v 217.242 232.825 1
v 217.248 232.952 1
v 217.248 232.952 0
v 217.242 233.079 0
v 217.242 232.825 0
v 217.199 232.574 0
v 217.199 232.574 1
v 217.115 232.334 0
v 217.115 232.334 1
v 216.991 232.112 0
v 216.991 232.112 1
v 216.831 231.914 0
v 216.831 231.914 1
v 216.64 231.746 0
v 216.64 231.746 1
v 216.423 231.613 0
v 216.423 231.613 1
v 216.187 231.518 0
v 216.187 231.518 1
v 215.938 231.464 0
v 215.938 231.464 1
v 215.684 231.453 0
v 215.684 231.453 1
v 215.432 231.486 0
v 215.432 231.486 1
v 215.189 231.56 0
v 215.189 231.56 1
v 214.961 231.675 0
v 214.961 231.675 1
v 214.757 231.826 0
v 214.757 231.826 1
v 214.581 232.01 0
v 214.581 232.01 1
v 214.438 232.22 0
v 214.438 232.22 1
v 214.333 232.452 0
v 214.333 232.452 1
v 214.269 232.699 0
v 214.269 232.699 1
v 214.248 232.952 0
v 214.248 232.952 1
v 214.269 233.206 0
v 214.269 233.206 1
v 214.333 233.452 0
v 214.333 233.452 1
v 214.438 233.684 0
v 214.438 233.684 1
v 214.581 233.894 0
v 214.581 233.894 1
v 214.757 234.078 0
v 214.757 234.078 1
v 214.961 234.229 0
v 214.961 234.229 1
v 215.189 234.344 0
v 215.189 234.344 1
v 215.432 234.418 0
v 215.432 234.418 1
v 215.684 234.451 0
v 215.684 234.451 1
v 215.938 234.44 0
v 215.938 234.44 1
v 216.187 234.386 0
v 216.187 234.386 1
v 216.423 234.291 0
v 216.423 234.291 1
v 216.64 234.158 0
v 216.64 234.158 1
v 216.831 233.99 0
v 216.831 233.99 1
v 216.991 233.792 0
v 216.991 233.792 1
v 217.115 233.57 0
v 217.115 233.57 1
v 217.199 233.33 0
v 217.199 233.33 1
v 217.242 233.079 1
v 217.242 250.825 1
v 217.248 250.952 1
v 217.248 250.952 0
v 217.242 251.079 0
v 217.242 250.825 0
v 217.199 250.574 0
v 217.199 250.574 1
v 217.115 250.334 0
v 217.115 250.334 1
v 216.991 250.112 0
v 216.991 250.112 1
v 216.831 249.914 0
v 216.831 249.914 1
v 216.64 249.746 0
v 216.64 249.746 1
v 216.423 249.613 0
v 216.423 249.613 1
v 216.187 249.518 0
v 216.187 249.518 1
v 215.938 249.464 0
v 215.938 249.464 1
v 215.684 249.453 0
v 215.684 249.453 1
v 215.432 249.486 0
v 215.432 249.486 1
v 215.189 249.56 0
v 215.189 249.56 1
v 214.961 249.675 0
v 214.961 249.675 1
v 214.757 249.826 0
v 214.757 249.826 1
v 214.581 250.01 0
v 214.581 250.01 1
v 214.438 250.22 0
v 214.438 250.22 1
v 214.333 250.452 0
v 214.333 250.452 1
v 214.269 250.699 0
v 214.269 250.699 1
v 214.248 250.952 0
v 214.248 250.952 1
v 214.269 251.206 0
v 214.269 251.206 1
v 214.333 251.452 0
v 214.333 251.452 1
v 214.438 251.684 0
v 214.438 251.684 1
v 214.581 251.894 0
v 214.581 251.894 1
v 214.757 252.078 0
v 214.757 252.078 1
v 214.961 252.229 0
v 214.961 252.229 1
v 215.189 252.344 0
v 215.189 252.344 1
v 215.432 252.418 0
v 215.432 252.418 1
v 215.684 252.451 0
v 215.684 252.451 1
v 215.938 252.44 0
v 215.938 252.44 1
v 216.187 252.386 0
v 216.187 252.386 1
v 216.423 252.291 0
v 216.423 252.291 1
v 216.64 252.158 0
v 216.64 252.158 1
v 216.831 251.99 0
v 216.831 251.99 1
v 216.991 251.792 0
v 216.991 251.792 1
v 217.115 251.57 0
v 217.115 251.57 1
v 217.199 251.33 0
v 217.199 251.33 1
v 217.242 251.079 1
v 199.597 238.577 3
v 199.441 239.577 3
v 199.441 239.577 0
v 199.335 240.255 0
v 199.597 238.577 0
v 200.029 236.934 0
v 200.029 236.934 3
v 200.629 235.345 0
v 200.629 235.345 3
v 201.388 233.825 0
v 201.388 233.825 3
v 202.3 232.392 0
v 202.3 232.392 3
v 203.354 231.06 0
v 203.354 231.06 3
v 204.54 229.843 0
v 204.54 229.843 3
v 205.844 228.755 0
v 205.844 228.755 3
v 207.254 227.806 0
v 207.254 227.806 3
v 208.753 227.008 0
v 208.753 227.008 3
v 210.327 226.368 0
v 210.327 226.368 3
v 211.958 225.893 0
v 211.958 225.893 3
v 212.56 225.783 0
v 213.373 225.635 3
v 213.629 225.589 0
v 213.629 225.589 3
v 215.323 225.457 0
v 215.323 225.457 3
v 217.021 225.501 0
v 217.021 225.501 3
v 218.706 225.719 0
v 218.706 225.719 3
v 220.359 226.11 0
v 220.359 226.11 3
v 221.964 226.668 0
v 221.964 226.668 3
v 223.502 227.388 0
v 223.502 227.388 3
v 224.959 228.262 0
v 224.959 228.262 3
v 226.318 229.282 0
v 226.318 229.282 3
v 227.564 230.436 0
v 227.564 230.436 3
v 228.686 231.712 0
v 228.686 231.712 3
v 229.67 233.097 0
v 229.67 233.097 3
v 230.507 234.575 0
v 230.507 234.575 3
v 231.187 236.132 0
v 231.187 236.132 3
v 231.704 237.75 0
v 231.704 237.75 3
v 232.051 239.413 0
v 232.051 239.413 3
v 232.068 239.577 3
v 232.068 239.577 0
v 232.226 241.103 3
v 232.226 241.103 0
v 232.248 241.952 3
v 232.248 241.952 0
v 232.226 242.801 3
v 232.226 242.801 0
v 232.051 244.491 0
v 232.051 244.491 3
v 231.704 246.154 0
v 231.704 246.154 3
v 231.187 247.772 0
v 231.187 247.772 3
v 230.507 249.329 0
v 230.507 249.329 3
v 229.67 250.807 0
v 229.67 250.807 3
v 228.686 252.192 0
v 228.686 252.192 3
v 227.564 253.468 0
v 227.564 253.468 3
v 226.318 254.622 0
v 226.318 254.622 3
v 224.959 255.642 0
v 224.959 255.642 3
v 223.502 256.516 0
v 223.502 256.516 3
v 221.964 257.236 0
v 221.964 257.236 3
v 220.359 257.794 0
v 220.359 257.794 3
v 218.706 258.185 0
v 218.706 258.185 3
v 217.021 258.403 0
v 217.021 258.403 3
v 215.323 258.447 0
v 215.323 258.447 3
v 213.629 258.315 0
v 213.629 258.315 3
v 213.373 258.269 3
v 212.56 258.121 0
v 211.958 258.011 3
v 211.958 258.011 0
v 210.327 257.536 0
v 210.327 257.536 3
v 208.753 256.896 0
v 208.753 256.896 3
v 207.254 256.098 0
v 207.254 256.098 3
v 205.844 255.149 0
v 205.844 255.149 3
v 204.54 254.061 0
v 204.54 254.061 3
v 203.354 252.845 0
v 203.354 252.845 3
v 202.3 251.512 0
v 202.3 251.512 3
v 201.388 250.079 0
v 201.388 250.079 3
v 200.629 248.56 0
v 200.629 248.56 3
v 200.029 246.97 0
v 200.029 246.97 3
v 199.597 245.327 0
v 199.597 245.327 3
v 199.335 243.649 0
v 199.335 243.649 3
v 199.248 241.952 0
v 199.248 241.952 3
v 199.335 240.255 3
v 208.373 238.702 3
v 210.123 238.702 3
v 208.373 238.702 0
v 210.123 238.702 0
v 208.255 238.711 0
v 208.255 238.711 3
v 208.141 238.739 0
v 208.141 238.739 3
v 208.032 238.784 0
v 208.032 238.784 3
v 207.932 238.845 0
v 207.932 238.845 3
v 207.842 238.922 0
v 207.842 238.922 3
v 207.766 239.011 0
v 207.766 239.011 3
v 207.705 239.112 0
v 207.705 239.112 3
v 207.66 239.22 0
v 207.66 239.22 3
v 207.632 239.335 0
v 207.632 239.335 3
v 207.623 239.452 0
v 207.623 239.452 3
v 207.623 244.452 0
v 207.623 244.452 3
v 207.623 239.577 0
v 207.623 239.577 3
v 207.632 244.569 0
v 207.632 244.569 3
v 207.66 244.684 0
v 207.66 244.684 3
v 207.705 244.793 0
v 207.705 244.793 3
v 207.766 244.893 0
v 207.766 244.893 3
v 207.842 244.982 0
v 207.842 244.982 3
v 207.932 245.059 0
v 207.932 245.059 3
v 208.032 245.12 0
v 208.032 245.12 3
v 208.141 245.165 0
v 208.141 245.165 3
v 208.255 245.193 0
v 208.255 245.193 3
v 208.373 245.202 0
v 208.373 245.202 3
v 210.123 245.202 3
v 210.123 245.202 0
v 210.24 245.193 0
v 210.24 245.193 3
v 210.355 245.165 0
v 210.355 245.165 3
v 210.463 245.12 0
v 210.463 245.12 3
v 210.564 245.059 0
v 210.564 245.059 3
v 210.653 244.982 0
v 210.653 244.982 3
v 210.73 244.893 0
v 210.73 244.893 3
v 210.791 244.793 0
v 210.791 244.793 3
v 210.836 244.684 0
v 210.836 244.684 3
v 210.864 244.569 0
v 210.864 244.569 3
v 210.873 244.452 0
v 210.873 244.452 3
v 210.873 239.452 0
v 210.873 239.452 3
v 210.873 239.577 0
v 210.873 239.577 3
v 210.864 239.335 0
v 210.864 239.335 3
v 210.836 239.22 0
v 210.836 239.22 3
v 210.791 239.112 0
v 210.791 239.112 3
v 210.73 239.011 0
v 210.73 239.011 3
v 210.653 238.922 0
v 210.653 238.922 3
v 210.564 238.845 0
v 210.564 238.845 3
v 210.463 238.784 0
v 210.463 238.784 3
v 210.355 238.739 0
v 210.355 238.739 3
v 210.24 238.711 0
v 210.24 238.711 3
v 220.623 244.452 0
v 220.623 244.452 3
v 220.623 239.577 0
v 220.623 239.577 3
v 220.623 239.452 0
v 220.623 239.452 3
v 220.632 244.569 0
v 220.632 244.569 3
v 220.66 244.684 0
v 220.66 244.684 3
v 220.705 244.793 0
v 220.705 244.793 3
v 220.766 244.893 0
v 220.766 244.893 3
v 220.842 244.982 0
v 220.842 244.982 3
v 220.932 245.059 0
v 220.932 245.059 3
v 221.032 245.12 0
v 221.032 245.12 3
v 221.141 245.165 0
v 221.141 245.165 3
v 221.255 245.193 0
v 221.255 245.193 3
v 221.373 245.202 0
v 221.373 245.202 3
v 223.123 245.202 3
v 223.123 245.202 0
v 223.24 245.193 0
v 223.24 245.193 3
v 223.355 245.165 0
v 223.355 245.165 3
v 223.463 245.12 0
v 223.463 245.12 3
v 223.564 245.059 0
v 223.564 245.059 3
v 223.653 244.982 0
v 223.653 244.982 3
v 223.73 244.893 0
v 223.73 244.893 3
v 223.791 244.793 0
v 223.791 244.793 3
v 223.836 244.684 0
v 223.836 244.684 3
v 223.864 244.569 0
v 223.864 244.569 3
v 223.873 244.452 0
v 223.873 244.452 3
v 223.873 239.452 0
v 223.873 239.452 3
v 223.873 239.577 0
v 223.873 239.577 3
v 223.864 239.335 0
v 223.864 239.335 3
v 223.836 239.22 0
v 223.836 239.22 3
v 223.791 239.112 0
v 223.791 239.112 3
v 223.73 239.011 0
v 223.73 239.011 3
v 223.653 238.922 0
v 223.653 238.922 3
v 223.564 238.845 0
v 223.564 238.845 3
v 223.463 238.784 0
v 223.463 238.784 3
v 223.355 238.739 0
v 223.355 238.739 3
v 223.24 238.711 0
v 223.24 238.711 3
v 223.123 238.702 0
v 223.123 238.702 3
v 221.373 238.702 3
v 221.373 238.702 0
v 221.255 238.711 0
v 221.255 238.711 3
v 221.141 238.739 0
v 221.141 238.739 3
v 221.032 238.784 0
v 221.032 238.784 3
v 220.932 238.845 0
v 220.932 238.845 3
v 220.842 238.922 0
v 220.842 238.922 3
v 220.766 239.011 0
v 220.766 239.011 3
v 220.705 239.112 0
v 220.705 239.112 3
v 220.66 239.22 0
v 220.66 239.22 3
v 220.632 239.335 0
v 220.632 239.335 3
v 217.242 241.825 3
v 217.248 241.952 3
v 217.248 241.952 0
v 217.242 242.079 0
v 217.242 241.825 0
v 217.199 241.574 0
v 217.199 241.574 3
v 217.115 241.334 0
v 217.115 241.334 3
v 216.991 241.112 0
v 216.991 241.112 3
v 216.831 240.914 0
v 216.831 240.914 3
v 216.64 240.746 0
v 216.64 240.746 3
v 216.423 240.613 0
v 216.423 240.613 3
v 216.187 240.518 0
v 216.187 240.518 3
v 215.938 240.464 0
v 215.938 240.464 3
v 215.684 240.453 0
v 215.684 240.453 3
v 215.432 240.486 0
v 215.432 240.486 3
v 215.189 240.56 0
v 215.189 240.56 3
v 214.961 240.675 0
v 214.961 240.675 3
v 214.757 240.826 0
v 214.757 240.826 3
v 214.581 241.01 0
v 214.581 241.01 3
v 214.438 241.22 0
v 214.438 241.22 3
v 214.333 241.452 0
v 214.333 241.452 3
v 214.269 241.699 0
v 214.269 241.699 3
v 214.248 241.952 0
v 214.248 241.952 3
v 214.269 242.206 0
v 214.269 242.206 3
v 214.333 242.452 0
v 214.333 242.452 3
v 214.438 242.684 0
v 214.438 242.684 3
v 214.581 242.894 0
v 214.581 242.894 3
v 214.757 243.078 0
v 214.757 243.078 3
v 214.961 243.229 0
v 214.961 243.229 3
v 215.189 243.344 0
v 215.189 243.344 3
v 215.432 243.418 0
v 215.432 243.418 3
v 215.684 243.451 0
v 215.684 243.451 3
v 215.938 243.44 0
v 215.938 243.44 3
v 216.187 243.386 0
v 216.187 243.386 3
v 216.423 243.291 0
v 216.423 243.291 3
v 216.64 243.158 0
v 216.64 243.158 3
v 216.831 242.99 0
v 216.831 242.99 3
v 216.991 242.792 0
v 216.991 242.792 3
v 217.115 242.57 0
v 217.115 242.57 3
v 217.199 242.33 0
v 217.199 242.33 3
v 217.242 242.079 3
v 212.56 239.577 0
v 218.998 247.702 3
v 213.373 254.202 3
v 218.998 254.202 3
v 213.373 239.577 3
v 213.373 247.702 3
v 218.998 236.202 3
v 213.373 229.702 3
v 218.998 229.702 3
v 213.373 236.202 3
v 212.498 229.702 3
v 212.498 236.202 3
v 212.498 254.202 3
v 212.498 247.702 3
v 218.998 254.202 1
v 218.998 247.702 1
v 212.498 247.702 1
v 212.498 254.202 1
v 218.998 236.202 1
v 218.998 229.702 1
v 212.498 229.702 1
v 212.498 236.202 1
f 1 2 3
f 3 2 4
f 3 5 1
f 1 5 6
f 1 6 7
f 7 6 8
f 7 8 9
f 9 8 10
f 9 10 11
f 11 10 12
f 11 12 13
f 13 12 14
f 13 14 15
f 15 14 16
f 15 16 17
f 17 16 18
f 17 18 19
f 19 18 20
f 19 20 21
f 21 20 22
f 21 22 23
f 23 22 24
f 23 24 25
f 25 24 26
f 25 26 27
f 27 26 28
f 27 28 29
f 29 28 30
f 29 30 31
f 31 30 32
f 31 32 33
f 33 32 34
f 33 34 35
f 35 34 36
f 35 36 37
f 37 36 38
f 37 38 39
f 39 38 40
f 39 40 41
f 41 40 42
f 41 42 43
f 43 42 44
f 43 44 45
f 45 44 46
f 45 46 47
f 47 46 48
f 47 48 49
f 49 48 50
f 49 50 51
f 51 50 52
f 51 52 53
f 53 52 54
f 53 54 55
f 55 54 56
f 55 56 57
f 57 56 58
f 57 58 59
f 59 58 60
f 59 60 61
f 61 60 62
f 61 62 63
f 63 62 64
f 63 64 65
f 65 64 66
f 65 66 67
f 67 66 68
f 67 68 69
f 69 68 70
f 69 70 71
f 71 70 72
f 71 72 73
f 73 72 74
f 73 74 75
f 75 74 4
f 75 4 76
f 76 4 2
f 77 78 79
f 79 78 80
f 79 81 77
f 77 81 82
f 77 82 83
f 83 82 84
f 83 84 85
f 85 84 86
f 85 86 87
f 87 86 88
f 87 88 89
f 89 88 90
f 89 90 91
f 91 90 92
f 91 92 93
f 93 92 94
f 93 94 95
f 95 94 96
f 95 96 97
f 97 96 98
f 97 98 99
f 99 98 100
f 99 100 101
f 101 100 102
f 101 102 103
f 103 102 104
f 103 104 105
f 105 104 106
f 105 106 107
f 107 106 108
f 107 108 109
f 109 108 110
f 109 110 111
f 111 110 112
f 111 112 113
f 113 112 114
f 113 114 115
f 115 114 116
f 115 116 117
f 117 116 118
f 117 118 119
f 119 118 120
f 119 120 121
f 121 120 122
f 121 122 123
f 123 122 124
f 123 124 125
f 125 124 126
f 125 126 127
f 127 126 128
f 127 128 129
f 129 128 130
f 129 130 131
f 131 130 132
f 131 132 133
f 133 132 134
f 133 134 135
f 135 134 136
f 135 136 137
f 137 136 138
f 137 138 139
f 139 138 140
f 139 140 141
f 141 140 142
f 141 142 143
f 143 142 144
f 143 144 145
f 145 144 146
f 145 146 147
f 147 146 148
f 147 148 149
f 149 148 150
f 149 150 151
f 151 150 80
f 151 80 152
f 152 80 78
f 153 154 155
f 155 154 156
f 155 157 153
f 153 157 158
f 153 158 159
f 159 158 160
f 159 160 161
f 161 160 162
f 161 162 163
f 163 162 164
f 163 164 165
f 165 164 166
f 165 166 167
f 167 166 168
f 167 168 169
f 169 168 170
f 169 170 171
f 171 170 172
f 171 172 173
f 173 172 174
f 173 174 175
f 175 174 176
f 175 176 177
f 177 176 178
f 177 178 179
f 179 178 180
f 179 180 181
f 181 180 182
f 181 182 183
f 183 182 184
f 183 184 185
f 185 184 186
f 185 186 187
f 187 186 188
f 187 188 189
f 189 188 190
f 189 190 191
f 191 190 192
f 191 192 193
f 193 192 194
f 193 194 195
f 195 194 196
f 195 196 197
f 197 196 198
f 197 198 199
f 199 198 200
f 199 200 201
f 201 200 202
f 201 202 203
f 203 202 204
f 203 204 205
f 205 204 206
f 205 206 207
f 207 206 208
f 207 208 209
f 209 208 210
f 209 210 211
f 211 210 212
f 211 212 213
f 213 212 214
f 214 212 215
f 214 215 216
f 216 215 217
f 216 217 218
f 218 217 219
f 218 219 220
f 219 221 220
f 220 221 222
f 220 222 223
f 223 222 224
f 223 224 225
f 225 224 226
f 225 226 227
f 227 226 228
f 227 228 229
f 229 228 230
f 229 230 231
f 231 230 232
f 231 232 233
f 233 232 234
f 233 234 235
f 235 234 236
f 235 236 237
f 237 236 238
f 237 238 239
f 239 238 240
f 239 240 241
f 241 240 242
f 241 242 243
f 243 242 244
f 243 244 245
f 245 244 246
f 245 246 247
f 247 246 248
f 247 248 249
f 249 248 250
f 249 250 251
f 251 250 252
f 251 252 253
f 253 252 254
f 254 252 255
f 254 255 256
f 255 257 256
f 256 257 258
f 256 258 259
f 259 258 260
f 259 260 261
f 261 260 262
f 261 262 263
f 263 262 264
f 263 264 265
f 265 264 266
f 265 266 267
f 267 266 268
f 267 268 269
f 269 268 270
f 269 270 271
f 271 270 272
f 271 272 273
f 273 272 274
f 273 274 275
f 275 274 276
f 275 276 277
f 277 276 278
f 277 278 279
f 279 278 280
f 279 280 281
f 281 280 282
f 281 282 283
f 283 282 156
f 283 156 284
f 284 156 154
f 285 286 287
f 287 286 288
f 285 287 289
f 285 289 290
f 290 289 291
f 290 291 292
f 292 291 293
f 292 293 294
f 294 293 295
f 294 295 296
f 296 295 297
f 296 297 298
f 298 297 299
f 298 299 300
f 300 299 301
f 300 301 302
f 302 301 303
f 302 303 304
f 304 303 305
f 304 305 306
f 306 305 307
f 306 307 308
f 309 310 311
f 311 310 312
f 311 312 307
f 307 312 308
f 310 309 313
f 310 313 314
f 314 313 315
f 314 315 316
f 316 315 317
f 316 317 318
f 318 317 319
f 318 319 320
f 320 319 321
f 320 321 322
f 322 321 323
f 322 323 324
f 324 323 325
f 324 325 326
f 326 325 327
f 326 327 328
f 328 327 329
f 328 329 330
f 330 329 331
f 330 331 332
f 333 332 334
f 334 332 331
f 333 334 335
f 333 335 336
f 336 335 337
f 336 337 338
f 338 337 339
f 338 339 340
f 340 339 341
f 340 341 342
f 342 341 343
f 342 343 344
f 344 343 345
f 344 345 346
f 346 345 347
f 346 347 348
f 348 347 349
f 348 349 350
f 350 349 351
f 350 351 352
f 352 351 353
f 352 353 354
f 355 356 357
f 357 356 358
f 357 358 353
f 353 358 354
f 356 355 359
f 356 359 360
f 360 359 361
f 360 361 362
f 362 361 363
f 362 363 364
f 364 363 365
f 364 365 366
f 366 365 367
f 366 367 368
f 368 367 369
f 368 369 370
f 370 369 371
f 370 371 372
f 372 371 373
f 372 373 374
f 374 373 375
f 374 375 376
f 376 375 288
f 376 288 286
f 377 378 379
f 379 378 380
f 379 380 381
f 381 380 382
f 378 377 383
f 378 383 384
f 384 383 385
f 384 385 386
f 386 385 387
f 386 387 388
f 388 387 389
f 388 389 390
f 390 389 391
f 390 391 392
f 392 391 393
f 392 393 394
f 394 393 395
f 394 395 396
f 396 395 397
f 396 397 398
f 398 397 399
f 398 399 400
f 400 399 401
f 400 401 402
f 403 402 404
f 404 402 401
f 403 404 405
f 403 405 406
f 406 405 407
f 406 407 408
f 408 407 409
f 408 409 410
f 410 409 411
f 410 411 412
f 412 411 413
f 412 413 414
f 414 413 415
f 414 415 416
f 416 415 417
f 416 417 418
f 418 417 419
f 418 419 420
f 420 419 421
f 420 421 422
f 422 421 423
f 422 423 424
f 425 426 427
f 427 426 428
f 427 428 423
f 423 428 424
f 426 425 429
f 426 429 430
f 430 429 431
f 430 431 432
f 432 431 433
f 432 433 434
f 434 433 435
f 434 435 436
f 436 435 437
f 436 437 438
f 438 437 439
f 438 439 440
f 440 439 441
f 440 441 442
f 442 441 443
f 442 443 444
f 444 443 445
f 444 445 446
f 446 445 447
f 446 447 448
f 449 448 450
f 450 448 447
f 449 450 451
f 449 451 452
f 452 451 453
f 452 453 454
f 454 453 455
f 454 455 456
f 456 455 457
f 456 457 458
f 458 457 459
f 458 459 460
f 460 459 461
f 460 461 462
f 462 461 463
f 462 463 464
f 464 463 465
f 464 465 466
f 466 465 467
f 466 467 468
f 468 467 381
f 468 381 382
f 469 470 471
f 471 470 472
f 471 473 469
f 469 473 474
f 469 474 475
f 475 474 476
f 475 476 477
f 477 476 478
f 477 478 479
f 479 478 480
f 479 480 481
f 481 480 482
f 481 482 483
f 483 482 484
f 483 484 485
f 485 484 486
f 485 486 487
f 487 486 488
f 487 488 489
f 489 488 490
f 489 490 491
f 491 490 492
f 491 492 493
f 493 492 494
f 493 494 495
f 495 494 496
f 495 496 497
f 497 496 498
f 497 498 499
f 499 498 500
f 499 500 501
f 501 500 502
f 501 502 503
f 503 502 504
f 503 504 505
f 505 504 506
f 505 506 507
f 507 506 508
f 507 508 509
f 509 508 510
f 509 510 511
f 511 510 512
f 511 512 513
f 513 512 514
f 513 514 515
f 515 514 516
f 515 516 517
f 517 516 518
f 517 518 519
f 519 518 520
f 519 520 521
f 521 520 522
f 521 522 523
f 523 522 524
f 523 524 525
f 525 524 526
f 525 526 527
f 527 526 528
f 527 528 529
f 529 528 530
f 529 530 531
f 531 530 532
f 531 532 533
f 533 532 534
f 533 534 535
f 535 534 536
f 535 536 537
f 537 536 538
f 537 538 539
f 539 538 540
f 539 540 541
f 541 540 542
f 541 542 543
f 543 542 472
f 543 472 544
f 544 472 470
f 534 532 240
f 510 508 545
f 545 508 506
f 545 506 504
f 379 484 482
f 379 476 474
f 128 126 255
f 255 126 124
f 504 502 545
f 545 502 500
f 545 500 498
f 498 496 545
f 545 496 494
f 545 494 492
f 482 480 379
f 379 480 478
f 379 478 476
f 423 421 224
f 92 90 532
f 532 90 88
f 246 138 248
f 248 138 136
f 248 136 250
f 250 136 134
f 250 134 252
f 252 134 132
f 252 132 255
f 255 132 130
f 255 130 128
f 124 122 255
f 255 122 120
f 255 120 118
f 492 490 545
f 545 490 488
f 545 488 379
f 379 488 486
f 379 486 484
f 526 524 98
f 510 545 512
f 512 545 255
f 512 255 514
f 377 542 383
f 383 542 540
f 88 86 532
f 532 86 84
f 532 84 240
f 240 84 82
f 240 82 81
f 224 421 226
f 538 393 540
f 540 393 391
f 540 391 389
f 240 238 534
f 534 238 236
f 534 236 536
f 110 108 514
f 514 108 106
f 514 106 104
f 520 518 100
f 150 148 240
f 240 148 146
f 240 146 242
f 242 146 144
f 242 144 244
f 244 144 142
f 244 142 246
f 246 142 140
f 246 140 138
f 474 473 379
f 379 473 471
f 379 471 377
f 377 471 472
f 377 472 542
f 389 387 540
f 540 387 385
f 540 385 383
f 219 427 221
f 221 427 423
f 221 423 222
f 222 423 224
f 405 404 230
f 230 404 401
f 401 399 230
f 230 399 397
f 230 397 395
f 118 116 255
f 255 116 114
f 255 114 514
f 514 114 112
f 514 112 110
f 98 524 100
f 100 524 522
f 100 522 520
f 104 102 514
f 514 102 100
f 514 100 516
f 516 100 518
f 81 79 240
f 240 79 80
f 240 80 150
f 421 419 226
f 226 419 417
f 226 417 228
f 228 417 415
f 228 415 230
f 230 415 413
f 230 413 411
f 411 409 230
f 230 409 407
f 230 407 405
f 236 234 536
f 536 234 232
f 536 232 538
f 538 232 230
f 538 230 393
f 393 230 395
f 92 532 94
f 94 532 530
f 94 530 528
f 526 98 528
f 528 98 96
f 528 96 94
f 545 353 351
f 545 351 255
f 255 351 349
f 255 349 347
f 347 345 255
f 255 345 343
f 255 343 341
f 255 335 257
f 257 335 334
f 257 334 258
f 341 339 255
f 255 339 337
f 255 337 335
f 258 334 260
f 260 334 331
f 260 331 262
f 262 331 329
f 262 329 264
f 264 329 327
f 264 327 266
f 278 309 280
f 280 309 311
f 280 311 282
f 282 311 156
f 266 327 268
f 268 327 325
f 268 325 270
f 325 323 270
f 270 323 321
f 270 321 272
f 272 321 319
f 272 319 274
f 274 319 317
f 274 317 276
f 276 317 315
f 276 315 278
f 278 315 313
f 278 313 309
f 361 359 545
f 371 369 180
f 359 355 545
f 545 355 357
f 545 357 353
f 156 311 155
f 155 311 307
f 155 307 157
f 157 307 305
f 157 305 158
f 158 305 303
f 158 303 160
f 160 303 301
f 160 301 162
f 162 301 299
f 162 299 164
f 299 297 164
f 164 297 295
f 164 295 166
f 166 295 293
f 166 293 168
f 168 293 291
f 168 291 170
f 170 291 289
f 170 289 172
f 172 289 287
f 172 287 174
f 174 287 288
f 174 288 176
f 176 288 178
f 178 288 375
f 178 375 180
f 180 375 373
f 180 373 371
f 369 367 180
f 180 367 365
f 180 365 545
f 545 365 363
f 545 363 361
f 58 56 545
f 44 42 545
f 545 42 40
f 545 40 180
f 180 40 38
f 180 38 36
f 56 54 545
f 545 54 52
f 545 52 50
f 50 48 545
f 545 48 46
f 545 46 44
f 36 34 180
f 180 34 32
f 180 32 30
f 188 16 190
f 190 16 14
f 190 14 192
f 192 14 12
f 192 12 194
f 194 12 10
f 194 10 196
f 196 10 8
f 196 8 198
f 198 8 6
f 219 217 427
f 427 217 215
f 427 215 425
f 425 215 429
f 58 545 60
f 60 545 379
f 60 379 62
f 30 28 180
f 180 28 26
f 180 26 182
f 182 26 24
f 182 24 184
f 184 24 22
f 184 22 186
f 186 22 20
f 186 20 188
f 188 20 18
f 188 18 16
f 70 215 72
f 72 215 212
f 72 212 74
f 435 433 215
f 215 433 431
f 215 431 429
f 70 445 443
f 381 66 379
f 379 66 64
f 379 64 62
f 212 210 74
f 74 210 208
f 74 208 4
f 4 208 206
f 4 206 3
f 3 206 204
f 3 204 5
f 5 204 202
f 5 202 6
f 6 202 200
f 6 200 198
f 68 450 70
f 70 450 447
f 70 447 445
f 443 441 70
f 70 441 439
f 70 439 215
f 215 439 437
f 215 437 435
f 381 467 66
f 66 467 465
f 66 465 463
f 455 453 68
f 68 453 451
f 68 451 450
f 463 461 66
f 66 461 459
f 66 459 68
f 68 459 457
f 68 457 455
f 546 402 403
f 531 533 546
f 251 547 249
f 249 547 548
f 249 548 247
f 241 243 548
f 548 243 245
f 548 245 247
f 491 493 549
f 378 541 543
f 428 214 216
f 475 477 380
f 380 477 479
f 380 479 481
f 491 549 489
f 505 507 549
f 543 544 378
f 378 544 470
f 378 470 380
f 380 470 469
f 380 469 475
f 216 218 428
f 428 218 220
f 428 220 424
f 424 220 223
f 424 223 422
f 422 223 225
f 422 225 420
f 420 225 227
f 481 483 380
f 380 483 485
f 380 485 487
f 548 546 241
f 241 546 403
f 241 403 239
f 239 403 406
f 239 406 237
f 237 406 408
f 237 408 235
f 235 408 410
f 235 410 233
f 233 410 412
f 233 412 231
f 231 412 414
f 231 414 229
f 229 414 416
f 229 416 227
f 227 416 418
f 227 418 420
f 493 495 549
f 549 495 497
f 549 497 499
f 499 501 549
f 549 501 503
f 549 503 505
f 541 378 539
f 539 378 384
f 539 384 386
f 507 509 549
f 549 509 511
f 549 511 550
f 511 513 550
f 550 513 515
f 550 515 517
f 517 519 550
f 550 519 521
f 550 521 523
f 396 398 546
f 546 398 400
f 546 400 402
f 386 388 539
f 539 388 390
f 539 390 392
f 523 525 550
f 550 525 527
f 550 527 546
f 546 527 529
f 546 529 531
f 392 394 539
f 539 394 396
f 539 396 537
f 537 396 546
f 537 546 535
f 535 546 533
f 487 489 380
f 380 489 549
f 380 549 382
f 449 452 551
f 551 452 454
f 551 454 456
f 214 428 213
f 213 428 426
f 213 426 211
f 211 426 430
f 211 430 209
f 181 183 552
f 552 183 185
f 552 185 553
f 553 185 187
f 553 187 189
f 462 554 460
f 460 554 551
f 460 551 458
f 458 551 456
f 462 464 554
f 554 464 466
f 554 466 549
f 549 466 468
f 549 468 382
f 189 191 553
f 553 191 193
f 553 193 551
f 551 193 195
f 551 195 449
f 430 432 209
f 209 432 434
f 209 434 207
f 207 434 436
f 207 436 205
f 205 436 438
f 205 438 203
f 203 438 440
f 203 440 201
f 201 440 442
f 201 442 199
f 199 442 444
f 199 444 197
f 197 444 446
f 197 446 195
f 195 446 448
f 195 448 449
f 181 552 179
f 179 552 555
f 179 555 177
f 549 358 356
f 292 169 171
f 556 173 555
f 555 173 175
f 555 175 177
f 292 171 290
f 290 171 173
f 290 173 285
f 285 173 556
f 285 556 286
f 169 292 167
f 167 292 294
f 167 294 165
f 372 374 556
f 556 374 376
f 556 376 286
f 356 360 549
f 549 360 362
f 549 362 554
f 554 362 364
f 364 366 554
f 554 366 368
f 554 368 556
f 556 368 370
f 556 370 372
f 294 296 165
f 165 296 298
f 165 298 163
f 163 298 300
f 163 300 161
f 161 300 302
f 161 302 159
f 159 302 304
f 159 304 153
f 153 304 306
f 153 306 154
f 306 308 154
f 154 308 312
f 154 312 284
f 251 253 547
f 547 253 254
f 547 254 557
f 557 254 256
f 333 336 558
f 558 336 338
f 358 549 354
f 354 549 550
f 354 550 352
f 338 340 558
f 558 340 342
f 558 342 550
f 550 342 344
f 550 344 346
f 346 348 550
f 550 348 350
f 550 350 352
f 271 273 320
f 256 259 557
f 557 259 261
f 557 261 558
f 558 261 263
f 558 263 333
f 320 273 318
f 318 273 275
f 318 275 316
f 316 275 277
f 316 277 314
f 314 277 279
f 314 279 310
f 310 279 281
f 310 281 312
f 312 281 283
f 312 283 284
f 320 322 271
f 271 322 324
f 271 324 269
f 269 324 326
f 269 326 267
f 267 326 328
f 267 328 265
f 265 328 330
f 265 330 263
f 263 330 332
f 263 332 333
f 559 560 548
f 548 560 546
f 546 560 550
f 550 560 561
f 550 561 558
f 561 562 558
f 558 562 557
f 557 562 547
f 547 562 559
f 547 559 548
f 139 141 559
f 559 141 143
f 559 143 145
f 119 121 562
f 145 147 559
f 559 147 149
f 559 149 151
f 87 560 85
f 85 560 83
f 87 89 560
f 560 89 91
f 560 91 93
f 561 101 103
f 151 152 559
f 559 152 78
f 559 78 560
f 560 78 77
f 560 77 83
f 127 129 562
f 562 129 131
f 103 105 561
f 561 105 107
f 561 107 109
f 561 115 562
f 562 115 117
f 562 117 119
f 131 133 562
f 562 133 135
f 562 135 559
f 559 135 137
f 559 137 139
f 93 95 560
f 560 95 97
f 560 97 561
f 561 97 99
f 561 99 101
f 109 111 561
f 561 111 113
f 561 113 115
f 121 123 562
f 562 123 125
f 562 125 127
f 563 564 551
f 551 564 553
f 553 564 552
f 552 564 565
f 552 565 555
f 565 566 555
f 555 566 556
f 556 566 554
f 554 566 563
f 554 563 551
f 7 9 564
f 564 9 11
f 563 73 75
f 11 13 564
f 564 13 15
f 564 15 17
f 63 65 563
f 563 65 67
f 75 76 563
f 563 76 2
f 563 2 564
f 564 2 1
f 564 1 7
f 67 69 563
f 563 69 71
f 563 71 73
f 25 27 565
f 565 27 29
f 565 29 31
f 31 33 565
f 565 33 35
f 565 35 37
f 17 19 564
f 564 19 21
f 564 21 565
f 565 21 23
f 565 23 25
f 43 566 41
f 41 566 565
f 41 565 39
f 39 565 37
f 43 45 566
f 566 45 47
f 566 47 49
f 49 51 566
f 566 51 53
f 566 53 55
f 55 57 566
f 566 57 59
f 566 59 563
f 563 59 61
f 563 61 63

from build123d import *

# Parameters (mm, degrees)
MODEL_R                 = 16.5
MODEL_R_2               = 1.5
SALIENTE_EXTRUIR1_DEPTH = 3
CROQUIS2_W              = 6.5
CROQUIS2_H              = 6.5
CROQUIS2_W_2            = 6.500000001
CORTAR_EXTRUIR1_DEPTH   = 2


with BuildPart() as part:
    # Model → Saliente-Extruir1 (new body)
    with BuildSketch(Plane.XY):
        with Locations((215.747807914, 241.952019993)):
            Circle(MODEL_R)
        with Locations((215.747807914, 232.952019993)):
            Circle(MODEL_R_2, mode=Mode.SUBTRACT)
        with Locations((215.747807914, 241.952019993)):
            Circle(MODEL_R_2, mode=Mode.SUBTRACT)
        with BuildLine():
            ThreePointArc((207.622807913, 244.452019993), (207.842477828, 244.982350079), (208.372807913, 245.202019993))
            Line((208.372807913, 245.202019993), (210.122807913, 245.202019993))
            ThreePointArc((210.122807913, 245.202019993), (210.653137999, 244.982350079), (210.872807913, 244.452019993))
            Line((210.872807913, 244.452019993), (210.872807913, 239.452019993))
            ThreePointArc((210.872807914, 239.452019993), (210.653137999, 238.921689907), (210.122807913, 238.702019993))
            Line((210.122807913, 238.702019993), (208.372807913, 238.702019993))
            ThreePointArc((208.372807913, 238.702019993), (207.842477828, 238.921689907), (207.622807913, 239.452019993))
            Line((207.622807913, 239.452019993), (207.622807913, 244.452019993))
        make_face(mode=Mode.SUBTRACT)
        with BuildLine():
            Line((221.372807913, 245.202019993), (223.122807913, 245.202019993))
            ThreePointArc((223.122807913, 245.202019993), (223.653137999, 244.982350079), (223.872807913, 244.452019993))
            Line((223.872807913, 244.452019993), (223.872807913, 239.452019993))
            ThreePointArc((223.872807914, 239.452019993), (223.653137999, 238.921689907), (223.122807913, 238.702019993))
            Line((223.122807913, 238.702019993), (221.372807913, 238.702019993))
            ThreePointArc((221.372807913, 238.702019993), (220.842477828, 238.921689907), (220.622807913, 239.452019993))
            Line((220.622807913, 239.452019993), (220.622807913, 244.452019993))
            ThreePointArc((220.622807913, 244.452019993), (220.842477828, 244.982350079), (221.372807913, 245.202019993))
        make_face(mode=Mode.SUBTRACT)
        with Locations((215.747807914, 250.952019993)):
            Circle(MODEL_R_2, mode=Mode.SUBTRACT)
    extrude(amount=SALIENTE_EXTRUIR1_DEPTH)

    # Croquis2 → Cortar-Extruir1 (cut)
    with BuildSketch(Plane.XY.offset(3)):
        with Locations((215.747807914, 250.952019993)):
            Rectangle(CROQUIS2_W, CROQUIS2_H)
        with Locations((215.747807914, 232.952019993)):
            Rectangle(CROQUIS2_W_2, CROQUIS2_H)
    extrude(amount=-CORTAR_EXTRUIR1_DEPTH, mode=Mode.SUBTRACT)


solid = part.part
